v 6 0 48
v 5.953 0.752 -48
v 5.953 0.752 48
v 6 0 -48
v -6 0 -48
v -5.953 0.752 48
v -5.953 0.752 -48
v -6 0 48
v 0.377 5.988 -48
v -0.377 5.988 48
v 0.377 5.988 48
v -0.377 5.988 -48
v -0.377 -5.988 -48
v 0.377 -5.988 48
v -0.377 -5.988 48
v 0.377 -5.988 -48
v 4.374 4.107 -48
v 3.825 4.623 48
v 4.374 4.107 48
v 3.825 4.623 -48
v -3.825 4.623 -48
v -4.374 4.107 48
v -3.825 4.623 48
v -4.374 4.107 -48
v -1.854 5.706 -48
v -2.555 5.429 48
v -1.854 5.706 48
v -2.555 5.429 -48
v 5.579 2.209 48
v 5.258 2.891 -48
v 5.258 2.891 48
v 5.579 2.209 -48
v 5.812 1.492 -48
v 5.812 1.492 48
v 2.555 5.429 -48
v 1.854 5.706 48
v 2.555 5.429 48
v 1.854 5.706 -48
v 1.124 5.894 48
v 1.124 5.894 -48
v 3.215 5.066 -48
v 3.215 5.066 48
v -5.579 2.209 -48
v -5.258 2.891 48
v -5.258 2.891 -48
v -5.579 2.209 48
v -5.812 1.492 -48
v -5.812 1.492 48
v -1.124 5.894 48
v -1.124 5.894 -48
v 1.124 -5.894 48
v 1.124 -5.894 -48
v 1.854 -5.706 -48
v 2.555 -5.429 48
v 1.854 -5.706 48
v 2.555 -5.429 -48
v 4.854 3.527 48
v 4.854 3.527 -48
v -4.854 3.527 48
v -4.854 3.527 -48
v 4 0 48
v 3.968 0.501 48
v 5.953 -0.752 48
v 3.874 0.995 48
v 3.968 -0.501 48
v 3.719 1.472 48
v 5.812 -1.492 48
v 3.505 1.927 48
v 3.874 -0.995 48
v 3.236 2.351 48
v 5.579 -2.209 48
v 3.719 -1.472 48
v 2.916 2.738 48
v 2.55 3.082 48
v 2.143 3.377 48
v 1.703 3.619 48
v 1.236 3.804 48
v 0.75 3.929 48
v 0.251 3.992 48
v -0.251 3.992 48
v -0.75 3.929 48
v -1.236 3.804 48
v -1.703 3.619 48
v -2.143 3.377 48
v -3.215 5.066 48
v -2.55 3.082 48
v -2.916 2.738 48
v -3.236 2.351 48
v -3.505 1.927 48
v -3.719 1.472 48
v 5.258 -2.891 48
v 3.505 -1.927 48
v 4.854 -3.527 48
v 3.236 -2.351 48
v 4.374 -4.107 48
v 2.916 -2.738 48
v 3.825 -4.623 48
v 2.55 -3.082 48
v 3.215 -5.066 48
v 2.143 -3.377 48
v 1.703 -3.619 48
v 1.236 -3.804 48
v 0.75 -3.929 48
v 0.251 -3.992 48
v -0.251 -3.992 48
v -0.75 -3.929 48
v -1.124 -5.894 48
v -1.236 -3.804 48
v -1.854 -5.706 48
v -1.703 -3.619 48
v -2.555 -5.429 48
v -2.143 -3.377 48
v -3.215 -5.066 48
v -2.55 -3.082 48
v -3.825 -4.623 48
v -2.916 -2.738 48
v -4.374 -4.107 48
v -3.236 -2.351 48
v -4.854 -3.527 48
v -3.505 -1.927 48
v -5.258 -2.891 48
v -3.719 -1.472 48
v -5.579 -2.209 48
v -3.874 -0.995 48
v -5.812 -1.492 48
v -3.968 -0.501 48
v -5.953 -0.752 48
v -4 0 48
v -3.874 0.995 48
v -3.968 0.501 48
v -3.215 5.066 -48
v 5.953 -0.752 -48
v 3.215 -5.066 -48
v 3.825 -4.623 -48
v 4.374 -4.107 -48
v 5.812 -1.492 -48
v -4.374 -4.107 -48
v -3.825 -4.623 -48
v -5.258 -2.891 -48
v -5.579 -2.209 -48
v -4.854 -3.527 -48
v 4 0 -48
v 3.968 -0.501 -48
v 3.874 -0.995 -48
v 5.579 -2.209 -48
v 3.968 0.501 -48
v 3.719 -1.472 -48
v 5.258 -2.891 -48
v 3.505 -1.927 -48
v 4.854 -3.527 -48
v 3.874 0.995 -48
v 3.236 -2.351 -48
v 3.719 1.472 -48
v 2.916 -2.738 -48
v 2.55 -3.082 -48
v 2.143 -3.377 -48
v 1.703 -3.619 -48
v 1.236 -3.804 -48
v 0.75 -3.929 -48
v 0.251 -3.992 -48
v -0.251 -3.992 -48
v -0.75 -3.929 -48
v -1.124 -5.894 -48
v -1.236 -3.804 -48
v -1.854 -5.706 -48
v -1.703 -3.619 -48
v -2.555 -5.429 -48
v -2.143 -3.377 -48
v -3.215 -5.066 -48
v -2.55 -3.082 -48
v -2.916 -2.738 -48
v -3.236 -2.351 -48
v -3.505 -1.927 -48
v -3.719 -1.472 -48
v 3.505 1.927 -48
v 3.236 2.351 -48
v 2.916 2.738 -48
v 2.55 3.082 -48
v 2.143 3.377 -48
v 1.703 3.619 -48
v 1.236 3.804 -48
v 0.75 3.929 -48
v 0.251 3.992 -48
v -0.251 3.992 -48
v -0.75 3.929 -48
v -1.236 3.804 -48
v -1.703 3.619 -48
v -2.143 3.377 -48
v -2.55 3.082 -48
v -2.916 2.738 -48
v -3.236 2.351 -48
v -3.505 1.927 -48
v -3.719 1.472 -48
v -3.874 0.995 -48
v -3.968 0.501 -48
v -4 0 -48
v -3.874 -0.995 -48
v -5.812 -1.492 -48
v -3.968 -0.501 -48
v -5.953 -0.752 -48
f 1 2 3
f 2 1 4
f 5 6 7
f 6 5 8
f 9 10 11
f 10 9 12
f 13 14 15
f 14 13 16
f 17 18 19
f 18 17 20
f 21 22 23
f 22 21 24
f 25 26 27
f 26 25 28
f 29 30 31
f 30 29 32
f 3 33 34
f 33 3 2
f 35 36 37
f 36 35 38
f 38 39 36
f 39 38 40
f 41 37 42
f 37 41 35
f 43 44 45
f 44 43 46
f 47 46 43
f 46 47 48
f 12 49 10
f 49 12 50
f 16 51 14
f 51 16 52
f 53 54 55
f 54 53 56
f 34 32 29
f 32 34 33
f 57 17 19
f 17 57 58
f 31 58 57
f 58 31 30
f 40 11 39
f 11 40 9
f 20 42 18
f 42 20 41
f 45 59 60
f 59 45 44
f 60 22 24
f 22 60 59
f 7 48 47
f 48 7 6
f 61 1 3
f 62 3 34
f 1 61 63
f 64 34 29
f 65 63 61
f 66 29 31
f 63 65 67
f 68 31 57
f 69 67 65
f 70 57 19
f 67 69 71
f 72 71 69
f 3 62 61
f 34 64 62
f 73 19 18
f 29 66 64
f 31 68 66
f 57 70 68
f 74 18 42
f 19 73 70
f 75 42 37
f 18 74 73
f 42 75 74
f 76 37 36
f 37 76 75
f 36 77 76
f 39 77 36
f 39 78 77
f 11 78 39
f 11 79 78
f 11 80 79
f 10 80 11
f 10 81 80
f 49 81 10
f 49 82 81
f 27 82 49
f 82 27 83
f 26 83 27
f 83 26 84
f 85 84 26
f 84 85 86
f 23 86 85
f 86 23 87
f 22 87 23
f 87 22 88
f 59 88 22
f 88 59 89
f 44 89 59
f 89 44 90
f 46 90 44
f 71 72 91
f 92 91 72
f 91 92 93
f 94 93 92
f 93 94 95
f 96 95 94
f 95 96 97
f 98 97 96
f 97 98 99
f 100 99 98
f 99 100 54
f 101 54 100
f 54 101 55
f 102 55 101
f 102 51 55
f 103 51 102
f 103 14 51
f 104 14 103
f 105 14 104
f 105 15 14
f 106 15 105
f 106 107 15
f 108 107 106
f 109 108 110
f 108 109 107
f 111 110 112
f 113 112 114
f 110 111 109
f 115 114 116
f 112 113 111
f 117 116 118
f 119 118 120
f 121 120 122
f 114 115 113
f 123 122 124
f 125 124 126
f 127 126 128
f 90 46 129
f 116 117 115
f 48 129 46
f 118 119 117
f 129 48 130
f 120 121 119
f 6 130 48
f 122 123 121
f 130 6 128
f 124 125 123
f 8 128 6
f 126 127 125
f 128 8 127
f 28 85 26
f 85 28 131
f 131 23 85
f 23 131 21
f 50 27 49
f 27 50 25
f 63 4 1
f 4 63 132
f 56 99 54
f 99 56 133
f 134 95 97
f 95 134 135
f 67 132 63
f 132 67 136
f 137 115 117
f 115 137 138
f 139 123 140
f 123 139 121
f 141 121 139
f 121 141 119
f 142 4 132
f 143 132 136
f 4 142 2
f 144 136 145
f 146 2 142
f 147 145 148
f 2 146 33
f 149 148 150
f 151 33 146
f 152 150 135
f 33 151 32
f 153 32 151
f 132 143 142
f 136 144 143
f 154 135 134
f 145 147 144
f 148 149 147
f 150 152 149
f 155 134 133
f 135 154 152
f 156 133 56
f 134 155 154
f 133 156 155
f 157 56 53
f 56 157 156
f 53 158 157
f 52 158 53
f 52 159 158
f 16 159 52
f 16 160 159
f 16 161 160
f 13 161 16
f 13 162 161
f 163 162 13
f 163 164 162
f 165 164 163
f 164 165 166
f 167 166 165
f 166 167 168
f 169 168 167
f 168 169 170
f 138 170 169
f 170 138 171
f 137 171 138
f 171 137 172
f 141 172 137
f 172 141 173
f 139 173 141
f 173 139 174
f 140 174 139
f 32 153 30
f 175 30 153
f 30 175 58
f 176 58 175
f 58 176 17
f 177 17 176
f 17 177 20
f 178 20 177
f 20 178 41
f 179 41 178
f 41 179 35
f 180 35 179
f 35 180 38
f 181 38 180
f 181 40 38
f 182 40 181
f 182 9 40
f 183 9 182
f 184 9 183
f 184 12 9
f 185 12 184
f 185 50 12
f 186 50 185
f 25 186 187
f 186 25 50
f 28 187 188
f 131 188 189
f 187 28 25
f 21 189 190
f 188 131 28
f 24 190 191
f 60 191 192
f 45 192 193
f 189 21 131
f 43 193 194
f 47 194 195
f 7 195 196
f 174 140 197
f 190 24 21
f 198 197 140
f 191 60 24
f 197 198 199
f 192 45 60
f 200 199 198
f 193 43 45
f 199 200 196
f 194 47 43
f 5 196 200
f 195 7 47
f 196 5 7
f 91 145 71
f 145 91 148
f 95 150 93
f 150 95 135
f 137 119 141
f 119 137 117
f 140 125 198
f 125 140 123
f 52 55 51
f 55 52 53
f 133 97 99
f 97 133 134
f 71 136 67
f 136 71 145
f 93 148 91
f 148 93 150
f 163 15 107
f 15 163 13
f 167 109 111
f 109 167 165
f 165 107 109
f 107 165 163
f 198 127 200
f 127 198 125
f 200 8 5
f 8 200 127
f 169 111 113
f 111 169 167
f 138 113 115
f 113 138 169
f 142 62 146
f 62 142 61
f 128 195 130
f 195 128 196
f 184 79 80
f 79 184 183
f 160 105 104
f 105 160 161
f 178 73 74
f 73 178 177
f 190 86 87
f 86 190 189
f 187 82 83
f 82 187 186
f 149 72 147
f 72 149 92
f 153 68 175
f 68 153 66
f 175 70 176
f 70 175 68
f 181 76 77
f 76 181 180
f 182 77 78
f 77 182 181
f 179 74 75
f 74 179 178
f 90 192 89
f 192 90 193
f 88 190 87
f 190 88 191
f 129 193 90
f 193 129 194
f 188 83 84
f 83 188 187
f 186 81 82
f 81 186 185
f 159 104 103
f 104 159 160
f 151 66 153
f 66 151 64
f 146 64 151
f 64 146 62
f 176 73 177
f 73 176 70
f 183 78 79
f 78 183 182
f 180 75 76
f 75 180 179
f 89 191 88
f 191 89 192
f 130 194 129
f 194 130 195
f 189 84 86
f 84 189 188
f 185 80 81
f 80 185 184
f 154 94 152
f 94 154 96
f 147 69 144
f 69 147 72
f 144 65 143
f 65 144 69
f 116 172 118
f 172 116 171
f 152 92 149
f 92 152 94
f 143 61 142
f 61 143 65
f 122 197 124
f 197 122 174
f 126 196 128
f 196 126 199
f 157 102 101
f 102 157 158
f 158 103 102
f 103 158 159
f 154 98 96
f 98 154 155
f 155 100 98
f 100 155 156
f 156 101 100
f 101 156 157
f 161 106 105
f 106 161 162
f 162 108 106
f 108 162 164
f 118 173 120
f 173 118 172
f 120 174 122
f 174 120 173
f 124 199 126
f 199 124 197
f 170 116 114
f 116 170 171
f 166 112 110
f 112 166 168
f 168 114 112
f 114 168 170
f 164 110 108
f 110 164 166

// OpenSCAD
$fn = 50;


difference() {
	union() {
		translate(v = [0, 0, -48.0000000000]) {
			cylinder(h = 96, r = 6.0000000000);
		}
	}
	union() {
		translate(v = [0, 0, -100.0000000000]) {
			cylinder(h = 200, r = 4);
		}
	}
}
